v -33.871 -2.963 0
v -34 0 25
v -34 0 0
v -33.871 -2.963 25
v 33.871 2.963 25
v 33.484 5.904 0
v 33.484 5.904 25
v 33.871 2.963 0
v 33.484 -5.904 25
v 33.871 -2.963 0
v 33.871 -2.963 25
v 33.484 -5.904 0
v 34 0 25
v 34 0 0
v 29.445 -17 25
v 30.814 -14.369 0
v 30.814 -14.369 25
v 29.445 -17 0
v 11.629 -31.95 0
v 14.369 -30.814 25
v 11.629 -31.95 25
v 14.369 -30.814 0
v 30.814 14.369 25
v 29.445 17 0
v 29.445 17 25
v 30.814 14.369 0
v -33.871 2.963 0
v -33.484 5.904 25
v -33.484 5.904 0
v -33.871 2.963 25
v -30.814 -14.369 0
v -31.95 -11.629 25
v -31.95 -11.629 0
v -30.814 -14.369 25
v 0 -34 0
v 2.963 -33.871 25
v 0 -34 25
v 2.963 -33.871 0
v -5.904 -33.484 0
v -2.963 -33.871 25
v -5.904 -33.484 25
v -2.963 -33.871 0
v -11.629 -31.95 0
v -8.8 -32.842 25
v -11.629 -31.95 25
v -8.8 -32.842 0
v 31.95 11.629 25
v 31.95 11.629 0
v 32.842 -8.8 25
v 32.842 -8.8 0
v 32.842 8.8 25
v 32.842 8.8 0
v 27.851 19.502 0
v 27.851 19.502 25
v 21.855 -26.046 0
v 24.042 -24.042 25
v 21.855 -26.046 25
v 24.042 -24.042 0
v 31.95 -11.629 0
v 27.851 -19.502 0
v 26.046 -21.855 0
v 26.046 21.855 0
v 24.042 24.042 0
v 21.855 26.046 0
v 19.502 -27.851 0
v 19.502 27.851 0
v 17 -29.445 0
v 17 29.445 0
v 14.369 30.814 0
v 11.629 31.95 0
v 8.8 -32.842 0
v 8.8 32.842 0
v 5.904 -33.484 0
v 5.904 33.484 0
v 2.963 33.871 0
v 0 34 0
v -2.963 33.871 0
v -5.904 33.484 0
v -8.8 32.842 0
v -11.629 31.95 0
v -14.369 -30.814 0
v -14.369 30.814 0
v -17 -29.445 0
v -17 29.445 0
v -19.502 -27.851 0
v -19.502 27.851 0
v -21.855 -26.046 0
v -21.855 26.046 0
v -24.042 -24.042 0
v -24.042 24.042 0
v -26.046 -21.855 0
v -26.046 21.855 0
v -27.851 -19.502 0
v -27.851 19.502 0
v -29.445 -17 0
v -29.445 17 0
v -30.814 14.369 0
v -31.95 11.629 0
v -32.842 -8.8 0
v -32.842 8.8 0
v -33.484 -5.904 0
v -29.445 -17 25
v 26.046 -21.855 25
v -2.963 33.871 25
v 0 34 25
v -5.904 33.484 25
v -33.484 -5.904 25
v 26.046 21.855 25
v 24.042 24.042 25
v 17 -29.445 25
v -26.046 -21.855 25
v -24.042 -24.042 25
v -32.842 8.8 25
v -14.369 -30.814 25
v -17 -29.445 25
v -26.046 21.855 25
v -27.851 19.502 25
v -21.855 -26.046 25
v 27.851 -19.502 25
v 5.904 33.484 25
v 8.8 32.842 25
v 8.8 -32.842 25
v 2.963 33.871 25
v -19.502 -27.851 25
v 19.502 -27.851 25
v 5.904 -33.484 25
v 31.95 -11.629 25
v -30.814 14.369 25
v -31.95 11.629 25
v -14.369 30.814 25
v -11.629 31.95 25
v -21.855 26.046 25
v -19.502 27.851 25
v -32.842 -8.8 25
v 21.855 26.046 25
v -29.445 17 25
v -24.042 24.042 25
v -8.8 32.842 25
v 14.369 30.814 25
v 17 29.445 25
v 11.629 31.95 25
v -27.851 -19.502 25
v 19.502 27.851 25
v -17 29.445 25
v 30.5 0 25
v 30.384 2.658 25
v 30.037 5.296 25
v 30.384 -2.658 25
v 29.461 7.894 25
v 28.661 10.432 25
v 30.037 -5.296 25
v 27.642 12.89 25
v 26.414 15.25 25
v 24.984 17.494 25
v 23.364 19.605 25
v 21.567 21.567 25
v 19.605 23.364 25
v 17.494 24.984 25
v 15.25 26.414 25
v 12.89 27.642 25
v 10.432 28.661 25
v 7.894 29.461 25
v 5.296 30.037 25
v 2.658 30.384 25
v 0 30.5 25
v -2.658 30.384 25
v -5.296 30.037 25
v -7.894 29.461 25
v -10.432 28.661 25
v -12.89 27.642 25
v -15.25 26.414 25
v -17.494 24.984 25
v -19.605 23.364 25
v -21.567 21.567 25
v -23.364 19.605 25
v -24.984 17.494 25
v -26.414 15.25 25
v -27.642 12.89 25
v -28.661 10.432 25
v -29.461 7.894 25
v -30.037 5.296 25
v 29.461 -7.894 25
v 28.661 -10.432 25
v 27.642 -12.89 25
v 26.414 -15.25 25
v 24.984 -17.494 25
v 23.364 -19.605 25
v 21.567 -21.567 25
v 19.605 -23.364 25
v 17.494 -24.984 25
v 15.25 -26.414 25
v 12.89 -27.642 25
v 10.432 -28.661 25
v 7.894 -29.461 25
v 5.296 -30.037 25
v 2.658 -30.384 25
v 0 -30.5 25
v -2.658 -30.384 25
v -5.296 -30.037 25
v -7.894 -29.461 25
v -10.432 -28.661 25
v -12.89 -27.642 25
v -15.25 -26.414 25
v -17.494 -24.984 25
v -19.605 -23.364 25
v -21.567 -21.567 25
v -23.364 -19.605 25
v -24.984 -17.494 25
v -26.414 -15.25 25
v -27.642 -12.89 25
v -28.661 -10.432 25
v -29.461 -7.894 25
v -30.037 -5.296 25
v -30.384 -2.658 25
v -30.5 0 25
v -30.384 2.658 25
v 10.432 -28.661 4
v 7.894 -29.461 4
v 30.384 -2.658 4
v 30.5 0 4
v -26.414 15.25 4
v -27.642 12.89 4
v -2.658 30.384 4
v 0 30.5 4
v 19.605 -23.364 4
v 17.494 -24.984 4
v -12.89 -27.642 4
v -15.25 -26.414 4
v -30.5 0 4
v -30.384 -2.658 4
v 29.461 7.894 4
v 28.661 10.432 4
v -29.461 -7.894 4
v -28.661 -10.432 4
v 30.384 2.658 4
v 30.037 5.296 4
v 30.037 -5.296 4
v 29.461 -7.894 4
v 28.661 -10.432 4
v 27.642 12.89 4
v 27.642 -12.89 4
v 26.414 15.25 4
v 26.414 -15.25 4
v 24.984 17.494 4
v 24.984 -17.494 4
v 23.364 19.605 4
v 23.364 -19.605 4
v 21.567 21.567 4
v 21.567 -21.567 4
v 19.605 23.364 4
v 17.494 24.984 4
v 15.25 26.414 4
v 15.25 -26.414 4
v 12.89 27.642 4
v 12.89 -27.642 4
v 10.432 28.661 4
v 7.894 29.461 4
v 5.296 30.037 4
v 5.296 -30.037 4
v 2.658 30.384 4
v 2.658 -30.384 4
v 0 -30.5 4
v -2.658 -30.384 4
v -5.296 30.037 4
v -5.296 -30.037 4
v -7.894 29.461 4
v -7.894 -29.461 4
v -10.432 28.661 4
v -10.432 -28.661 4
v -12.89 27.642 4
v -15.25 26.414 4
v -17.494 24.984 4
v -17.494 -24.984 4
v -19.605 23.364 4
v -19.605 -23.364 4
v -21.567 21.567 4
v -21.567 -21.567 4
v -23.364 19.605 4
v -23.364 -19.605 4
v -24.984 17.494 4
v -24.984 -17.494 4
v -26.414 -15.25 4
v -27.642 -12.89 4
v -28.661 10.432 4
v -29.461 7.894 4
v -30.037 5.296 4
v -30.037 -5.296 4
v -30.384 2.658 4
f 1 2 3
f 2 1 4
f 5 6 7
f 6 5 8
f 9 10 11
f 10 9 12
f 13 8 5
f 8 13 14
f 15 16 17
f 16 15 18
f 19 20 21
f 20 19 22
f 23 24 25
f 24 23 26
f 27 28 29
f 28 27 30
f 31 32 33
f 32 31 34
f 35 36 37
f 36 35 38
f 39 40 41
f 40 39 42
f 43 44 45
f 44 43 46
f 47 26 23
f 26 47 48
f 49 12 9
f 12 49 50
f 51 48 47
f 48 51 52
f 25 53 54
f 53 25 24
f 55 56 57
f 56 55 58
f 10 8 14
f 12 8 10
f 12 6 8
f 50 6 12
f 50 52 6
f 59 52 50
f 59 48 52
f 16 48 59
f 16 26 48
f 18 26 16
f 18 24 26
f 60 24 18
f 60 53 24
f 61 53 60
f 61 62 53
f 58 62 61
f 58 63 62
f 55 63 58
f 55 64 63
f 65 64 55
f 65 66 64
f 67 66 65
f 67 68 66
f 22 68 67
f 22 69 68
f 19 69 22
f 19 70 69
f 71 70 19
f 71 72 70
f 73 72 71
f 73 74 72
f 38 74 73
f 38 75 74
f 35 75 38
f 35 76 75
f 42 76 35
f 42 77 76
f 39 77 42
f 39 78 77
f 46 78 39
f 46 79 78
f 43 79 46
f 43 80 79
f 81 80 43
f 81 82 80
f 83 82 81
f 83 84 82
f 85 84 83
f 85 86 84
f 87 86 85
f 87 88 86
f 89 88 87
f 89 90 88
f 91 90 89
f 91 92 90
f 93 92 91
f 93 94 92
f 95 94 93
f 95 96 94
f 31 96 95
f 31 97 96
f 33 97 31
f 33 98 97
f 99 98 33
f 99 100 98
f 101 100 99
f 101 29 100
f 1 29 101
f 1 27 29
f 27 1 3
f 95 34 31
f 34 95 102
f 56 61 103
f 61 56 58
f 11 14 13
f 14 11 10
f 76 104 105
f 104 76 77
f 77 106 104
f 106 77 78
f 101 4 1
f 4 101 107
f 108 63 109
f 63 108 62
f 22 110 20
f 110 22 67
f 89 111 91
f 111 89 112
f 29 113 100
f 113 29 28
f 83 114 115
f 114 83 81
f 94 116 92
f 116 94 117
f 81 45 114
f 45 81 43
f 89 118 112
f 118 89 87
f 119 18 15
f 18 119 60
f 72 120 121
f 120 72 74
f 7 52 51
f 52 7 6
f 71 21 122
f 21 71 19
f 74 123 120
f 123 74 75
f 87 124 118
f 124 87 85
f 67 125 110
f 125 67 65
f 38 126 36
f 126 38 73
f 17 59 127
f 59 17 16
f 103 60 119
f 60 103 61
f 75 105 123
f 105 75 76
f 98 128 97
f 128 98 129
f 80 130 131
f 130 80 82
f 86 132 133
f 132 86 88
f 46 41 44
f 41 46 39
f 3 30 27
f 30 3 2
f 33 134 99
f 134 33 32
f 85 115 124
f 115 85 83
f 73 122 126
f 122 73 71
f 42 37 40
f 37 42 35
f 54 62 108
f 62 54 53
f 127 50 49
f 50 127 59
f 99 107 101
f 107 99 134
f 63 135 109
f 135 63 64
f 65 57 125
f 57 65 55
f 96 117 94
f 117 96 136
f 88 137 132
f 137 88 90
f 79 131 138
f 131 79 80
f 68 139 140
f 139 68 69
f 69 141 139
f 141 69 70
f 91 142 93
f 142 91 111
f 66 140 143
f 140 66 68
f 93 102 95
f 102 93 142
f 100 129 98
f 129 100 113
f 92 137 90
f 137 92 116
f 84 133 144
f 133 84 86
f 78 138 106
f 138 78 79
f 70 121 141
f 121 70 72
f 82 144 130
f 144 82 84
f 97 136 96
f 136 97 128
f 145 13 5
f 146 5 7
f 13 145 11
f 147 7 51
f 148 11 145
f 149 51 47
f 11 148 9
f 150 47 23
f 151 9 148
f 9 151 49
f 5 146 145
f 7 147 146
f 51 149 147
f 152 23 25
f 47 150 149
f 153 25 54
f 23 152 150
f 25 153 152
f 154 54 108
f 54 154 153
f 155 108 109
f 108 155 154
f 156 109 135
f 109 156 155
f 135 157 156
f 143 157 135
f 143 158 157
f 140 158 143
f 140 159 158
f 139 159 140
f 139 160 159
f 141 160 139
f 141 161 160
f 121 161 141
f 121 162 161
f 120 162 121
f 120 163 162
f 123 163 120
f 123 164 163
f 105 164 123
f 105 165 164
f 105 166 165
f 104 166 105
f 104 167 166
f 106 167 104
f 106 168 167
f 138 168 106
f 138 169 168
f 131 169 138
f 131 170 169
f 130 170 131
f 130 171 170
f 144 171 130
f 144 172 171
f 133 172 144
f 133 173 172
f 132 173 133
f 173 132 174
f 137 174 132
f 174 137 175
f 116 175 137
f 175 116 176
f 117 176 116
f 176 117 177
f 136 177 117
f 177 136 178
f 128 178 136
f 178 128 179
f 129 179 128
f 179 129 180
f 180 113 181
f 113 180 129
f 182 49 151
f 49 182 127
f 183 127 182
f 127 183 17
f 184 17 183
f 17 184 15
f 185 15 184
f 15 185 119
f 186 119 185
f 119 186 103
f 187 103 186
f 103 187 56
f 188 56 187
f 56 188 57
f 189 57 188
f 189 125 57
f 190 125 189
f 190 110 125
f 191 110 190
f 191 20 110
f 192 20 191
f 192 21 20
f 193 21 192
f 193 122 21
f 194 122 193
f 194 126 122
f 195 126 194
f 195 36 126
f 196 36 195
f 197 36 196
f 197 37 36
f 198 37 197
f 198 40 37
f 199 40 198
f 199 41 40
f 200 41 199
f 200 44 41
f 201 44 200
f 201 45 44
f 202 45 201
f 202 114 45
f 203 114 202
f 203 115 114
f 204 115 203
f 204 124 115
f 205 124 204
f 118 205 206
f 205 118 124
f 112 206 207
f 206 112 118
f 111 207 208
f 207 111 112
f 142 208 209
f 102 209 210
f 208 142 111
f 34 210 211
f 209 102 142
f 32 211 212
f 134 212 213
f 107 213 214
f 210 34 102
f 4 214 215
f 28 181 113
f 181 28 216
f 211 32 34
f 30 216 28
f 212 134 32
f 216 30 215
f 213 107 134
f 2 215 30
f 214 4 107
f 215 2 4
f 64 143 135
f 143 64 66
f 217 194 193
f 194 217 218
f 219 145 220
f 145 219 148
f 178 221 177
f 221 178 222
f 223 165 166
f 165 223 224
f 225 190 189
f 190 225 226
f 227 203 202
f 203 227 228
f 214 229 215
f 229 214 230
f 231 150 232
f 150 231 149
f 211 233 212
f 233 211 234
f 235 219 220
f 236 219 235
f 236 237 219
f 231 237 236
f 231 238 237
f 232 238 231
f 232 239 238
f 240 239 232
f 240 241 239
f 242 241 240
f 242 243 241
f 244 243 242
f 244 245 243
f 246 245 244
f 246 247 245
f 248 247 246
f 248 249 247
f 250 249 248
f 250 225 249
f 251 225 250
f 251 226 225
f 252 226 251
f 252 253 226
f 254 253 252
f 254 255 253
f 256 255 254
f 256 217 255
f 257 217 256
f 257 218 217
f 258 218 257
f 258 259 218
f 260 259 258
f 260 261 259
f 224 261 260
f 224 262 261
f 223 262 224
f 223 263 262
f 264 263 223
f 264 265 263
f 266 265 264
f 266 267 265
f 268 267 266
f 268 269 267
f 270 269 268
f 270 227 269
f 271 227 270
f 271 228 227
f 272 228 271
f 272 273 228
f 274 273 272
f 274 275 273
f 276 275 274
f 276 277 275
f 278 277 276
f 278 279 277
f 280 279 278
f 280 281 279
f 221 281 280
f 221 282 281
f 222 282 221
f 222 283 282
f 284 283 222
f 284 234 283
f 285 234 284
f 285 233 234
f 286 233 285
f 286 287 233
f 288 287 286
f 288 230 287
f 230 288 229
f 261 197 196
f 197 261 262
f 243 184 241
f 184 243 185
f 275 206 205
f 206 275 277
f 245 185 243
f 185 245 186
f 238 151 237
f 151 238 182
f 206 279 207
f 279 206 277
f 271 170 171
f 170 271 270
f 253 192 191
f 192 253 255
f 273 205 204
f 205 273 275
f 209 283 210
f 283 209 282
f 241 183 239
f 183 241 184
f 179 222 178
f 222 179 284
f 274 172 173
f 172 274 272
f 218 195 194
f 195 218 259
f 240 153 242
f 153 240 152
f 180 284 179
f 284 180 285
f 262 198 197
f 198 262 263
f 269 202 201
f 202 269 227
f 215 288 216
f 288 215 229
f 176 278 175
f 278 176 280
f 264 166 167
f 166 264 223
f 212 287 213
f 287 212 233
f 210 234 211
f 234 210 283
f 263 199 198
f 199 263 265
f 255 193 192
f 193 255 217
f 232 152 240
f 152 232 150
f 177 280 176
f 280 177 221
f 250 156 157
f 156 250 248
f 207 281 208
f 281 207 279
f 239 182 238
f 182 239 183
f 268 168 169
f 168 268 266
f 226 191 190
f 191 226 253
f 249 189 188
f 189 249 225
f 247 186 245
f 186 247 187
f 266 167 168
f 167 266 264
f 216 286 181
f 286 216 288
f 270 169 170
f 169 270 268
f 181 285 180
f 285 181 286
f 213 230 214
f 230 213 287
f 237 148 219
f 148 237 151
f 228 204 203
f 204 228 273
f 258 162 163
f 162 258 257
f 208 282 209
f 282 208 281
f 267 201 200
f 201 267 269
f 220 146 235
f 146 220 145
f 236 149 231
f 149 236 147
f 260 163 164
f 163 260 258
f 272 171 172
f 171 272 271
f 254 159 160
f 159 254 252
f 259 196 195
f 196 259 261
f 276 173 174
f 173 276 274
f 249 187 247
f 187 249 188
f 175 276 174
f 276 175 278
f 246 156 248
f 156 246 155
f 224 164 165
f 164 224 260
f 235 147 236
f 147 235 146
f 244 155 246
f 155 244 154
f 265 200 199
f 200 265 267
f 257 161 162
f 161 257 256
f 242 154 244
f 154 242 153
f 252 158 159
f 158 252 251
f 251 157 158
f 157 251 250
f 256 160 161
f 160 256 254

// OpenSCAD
$fn=72;
difference() {
    linear_extrude(25,offset = 10, slices = 10) circle(r=34);
    translate([0,0,4]) linear_extrude(30,offset = -1, slices = 10) circle(r=30.5);
}
